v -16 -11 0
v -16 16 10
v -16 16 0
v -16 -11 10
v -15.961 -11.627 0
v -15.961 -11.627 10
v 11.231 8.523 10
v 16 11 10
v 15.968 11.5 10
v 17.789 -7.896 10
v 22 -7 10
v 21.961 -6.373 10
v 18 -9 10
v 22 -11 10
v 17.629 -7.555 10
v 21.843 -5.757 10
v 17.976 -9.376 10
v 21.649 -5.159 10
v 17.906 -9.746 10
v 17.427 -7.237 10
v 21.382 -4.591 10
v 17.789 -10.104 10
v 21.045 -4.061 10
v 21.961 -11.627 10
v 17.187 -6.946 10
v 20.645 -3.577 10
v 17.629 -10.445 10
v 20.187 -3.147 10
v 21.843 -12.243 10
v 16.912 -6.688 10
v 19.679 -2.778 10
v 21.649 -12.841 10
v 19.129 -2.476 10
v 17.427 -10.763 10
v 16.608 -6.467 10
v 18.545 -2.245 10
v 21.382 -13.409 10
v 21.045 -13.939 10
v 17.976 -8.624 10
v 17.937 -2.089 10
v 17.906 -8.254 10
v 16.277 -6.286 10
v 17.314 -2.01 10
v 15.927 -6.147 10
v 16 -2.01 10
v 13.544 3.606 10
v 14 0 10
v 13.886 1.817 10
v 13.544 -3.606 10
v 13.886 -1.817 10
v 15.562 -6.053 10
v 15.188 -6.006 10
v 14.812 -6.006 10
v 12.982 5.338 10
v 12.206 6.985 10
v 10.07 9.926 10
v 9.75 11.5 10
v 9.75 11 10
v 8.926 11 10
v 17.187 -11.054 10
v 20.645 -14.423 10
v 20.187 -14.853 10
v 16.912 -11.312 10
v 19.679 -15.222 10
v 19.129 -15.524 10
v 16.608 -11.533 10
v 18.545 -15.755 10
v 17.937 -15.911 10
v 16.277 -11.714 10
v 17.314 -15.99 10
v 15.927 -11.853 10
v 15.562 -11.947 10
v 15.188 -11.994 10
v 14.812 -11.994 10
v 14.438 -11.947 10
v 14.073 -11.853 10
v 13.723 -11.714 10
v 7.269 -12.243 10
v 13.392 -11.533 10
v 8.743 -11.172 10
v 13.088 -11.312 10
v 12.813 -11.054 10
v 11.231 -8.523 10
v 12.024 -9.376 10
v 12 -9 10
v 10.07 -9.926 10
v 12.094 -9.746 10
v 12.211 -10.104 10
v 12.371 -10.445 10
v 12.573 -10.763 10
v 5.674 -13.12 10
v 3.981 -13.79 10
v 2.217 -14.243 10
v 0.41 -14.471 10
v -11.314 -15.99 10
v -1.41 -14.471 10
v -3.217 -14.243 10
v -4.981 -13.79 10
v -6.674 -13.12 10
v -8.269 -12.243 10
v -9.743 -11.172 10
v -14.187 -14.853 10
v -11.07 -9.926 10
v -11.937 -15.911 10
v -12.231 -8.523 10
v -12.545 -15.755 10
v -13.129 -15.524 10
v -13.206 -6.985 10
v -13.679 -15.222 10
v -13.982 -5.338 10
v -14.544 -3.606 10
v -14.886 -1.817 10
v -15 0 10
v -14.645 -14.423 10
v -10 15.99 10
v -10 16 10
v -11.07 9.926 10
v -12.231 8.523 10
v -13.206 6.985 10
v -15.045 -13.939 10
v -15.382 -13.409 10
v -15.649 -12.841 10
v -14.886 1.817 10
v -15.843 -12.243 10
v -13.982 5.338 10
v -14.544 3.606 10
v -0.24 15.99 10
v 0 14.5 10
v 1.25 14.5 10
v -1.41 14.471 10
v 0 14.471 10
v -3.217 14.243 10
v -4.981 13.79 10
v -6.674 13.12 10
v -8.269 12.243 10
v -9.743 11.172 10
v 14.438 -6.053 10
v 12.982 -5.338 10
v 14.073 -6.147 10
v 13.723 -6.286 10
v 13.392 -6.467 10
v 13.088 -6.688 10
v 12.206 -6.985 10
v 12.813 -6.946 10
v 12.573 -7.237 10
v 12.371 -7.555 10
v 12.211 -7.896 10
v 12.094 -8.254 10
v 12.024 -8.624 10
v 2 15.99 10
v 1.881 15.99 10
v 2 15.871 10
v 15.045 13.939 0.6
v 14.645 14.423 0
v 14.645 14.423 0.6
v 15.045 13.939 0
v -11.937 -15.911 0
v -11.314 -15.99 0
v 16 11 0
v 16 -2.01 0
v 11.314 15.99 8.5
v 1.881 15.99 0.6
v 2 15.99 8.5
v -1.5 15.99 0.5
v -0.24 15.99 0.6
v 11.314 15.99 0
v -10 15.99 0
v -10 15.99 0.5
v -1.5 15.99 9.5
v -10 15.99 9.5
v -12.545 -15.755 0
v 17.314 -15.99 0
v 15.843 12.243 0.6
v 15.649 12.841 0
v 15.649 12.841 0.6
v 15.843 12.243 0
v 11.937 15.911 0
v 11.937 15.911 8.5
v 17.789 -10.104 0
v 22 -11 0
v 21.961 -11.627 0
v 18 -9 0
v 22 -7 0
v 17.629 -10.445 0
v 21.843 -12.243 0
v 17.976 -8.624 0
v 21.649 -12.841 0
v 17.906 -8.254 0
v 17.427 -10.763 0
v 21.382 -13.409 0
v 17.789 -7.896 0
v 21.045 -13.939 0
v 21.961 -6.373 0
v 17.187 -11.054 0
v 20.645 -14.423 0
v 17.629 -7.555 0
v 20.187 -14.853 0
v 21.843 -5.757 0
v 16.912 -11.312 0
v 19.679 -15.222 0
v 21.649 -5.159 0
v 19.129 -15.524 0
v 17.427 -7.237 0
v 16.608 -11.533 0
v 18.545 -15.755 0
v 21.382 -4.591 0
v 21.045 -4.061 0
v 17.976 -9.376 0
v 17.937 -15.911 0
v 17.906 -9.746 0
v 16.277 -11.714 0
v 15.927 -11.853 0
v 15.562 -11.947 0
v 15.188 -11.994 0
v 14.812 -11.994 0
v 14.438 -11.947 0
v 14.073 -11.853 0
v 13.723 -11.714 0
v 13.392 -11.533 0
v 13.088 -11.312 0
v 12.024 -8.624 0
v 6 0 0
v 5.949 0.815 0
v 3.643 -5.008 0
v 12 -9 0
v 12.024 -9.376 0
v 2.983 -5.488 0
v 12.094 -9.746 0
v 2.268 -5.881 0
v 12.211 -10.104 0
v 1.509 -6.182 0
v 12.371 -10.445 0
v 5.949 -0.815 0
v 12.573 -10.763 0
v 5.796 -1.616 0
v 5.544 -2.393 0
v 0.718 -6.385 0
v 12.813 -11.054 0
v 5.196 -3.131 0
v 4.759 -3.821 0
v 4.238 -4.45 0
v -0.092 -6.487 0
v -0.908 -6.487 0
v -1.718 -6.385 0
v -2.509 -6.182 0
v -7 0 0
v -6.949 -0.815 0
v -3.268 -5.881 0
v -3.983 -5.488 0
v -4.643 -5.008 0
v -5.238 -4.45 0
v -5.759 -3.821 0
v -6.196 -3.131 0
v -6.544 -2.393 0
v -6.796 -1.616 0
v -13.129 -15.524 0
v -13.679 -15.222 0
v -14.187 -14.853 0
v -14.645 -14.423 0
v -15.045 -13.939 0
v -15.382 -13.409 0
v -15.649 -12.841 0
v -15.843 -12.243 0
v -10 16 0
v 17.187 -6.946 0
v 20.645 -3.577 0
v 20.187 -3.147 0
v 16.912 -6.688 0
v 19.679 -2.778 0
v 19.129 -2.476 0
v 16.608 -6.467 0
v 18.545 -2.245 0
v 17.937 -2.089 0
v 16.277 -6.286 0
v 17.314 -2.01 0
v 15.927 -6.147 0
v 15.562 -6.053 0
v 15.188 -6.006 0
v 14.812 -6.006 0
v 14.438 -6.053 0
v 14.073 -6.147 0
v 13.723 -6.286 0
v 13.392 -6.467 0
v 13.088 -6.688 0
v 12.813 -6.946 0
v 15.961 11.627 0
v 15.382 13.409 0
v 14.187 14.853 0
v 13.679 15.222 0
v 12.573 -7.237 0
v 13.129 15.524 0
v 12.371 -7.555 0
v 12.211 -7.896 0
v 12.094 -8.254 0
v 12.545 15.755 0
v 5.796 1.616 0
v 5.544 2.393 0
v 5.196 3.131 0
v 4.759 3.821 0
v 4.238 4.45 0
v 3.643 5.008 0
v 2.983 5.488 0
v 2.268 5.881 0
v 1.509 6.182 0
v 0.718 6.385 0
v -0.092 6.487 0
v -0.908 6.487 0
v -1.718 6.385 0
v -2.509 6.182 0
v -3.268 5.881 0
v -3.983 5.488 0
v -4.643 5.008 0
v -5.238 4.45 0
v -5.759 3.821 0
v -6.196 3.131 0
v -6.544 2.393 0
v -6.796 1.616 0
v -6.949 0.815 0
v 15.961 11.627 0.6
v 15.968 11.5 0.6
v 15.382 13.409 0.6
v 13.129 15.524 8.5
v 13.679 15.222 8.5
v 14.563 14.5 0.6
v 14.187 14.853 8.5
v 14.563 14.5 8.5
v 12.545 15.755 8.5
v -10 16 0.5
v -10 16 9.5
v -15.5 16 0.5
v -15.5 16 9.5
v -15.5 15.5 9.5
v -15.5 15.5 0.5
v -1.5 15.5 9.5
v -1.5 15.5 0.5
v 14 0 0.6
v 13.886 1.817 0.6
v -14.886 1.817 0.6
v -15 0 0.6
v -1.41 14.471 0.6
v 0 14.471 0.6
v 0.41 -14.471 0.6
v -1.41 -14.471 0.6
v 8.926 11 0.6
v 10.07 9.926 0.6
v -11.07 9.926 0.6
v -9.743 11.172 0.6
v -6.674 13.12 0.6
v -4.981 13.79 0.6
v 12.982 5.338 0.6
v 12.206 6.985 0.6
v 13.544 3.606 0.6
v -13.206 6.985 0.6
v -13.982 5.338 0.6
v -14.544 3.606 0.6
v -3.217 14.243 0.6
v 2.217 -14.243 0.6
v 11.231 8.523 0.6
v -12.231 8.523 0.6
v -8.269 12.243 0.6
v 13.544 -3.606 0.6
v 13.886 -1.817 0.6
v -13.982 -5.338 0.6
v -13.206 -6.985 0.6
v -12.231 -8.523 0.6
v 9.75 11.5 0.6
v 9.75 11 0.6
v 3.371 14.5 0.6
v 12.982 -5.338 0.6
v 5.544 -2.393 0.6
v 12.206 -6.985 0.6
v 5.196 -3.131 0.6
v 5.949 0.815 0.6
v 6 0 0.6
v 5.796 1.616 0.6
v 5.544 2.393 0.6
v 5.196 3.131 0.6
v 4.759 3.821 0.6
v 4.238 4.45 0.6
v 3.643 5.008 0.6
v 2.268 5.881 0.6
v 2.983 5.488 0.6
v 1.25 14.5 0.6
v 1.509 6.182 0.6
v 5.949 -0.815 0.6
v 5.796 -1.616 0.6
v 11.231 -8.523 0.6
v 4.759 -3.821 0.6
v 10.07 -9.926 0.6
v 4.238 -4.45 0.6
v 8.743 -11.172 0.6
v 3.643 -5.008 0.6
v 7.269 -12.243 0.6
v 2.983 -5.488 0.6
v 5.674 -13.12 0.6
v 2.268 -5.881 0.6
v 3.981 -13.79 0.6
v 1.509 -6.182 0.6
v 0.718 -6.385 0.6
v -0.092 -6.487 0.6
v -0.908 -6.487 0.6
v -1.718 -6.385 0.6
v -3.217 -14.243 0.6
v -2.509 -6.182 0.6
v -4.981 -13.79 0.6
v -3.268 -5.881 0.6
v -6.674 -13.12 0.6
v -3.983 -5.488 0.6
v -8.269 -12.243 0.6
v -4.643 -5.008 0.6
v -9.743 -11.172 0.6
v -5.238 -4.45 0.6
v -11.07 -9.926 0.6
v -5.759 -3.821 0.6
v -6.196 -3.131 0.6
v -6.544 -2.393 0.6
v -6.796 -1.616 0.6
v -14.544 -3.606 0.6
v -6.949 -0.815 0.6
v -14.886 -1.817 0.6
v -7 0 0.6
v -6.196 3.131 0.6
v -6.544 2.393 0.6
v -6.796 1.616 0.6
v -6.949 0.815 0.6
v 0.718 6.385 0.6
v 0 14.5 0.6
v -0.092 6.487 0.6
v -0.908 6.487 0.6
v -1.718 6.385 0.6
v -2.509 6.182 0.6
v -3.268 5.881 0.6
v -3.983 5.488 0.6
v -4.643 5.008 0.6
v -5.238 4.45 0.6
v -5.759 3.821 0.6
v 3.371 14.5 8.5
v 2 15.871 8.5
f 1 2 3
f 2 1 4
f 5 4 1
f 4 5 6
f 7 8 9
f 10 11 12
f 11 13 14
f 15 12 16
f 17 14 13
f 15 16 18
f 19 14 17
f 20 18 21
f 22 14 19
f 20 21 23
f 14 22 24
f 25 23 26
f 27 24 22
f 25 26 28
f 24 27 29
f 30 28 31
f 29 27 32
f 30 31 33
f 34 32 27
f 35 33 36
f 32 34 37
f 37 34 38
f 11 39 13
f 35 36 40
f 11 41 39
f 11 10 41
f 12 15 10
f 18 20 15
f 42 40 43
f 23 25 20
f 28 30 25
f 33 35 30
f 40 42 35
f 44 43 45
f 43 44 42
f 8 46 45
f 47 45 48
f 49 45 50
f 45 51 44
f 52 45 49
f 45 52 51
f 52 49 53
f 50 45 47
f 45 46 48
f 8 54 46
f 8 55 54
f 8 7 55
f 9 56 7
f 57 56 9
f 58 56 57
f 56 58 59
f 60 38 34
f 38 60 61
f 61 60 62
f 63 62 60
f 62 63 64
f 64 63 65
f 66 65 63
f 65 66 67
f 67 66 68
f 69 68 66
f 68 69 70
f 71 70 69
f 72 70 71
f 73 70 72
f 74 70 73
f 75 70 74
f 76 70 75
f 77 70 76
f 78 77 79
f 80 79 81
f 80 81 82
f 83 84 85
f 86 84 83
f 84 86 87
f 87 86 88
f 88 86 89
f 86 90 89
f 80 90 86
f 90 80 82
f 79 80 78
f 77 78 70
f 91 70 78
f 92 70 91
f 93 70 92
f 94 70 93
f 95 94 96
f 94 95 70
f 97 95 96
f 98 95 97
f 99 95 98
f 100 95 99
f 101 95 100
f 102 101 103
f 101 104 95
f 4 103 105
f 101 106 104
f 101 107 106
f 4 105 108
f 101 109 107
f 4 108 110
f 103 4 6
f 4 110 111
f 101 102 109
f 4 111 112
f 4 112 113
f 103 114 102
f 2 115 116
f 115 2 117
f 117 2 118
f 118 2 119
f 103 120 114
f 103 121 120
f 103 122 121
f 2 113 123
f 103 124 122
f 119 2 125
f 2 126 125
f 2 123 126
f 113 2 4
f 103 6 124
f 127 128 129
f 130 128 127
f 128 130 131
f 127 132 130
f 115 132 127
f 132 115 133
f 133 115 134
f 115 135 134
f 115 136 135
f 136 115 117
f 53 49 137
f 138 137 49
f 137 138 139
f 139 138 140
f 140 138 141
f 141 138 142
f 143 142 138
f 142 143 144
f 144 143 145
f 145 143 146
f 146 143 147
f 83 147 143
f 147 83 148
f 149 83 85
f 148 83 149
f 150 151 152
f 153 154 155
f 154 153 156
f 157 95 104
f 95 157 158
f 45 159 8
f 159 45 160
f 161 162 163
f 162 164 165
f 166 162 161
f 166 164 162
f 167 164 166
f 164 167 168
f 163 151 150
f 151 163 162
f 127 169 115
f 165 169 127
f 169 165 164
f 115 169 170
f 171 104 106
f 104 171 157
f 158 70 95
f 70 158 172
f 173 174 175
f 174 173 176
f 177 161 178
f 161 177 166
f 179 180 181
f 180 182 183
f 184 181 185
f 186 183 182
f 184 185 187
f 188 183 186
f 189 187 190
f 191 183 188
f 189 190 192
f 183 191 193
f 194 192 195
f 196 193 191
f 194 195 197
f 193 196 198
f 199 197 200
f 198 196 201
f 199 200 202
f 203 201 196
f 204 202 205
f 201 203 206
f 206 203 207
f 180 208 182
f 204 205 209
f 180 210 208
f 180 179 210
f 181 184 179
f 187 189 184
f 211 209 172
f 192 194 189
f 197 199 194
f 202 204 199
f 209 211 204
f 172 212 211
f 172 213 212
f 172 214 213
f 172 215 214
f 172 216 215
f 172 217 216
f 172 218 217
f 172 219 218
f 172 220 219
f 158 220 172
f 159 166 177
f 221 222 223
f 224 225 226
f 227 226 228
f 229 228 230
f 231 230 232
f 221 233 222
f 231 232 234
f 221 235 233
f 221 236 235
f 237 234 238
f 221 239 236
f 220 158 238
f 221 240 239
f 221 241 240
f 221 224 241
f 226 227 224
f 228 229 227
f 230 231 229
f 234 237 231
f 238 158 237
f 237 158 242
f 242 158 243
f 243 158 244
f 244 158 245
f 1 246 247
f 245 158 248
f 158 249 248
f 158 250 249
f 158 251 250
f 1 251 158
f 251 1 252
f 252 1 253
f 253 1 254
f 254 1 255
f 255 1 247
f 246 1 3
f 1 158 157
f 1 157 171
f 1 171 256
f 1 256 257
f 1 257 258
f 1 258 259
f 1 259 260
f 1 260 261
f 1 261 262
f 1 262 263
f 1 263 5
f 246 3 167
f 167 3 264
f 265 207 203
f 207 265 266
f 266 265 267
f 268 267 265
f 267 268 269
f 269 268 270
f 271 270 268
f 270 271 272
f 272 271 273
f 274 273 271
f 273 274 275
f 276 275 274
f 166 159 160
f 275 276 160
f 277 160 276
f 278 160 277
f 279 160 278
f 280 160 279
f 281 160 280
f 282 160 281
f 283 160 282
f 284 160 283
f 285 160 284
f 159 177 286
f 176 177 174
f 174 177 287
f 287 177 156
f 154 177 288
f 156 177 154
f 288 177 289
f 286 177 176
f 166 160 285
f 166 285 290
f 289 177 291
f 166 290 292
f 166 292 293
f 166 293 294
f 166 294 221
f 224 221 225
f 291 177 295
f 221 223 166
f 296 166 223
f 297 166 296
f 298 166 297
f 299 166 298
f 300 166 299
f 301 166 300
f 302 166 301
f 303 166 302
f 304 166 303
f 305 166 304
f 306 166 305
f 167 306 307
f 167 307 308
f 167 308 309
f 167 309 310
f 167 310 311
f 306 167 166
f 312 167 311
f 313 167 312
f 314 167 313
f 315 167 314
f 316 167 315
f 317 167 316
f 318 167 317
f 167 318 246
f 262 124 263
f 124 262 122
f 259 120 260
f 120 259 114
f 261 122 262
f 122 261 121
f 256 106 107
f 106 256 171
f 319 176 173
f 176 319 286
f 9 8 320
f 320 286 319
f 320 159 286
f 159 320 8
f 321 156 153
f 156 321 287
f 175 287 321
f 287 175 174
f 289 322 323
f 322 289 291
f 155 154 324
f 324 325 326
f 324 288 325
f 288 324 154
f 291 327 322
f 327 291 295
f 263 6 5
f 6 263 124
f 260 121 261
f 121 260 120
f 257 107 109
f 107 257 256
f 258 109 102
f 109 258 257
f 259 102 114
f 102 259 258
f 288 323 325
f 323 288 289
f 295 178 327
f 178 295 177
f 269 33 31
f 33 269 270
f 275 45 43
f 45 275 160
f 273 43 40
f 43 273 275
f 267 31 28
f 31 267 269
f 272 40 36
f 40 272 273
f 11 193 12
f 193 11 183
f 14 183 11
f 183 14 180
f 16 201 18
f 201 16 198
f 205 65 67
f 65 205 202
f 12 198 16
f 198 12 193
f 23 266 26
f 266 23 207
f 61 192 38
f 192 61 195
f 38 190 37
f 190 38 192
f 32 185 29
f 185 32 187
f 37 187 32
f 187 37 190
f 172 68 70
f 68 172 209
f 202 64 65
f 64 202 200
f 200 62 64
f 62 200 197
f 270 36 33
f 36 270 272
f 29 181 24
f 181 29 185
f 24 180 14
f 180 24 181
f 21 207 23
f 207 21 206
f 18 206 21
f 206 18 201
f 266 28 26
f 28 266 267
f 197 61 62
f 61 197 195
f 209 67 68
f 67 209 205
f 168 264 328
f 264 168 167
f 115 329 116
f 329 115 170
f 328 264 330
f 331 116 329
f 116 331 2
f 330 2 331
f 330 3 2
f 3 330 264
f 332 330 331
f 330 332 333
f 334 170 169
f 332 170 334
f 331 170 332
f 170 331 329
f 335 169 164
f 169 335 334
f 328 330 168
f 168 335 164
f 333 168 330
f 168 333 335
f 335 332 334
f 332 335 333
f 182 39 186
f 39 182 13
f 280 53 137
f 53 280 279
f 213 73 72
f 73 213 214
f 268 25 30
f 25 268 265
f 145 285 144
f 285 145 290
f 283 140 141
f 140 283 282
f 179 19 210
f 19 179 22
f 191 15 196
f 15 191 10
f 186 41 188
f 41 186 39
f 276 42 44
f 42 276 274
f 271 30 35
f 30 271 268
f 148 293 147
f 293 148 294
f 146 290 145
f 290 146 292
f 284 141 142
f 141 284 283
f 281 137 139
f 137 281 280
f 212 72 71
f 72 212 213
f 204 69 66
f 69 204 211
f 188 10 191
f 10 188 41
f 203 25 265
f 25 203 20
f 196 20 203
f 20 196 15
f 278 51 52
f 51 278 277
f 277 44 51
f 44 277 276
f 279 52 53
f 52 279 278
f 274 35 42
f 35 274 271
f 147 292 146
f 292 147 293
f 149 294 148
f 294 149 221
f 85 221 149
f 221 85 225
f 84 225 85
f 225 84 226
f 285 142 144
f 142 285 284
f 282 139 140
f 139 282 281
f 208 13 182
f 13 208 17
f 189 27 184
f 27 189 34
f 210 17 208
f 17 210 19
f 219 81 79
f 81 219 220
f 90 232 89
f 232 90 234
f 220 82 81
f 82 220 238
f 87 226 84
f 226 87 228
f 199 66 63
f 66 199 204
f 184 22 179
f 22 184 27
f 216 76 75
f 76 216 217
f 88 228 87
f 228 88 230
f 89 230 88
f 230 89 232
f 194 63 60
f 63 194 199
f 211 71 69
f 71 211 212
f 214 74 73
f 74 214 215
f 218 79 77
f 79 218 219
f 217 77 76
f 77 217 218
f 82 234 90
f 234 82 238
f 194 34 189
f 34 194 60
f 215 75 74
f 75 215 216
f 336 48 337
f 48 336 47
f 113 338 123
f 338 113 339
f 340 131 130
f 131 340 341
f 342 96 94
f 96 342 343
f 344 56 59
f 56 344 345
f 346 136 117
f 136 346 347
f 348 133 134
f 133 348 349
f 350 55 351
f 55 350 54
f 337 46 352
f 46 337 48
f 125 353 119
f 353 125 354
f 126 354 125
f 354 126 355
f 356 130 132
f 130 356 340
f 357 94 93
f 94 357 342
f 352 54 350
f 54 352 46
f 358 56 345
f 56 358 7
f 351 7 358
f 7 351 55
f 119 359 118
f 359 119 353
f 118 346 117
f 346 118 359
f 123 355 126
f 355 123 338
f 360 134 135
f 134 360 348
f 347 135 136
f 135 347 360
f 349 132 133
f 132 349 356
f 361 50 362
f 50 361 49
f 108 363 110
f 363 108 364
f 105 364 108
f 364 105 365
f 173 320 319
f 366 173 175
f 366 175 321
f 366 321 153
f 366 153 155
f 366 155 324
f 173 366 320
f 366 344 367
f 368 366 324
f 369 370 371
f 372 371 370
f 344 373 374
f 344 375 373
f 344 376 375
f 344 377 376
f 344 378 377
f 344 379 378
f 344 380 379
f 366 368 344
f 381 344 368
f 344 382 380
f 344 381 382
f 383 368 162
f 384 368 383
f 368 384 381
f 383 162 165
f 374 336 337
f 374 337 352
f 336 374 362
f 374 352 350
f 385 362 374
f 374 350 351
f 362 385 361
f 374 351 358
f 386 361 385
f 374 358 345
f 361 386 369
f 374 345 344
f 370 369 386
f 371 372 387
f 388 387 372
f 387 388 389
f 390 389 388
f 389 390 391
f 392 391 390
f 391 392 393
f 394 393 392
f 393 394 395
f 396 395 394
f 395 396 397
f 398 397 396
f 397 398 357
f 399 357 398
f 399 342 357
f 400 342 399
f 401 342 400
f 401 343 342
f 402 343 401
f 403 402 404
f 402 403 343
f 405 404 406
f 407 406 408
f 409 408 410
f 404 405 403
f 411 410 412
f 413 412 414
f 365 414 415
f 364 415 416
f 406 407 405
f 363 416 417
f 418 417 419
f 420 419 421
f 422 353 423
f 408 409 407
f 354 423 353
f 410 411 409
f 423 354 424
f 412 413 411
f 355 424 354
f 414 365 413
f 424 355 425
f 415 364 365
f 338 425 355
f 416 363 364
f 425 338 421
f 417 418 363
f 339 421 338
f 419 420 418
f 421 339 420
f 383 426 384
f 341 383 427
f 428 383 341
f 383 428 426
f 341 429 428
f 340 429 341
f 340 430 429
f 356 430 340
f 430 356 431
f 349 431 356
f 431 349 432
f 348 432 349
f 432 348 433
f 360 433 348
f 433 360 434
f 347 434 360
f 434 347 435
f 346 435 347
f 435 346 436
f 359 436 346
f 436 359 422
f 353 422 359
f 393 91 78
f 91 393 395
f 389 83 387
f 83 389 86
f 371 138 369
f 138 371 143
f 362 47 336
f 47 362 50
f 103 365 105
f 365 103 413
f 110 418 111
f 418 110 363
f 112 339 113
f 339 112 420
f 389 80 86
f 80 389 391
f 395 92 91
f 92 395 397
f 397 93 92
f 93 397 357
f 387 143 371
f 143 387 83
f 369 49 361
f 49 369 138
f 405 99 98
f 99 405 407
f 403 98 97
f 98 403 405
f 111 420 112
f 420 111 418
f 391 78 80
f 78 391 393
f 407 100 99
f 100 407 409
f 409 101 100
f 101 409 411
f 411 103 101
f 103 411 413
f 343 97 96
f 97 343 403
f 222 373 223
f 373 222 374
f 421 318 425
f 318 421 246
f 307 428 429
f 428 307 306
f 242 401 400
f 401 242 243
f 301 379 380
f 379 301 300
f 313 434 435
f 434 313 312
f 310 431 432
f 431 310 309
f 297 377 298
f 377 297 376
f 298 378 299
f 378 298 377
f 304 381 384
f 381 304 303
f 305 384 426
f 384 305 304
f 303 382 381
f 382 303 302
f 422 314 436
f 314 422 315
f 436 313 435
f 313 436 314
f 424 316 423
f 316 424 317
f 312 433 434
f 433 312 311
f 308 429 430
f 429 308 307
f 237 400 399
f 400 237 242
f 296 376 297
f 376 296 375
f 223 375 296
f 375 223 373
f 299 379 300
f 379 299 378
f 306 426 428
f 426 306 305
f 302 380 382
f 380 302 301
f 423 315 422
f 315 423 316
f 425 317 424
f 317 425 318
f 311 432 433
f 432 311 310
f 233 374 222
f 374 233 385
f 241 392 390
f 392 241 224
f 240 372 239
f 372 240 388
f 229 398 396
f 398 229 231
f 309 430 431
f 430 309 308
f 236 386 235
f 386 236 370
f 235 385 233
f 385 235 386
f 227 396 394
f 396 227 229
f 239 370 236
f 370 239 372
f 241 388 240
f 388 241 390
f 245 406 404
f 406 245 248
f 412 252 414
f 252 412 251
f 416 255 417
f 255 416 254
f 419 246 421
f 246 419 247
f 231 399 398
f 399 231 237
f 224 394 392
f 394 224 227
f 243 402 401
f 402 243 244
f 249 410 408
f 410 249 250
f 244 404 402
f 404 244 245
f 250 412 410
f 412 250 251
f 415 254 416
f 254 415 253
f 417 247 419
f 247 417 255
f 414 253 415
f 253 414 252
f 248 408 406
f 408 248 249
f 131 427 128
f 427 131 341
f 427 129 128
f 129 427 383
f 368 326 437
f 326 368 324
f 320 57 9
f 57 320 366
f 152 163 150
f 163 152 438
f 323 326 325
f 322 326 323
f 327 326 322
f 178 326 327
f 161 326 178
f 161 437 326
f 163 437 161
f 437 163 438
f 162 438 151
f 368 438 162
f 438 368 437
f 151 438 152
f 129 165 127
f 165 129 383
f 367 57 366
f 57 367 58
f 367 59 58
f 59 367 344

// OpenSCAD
$fn = 50;


difference() {
	union() {
		hull() {
			translate(v = [-11.0000000000, 11.0000000000, 0]) {
				cylinder(h = 10, r = 5);
			}
			translate(v = [11.0000000000, 11.0000000000, 0]) {
				cylinder(h = 10, r = 5);
			}
			translate(v = [-11.0000000000, -11.0000000000, 0]) {
				cylinder(h = 10, r = 5);
			}
			translate(v = [11.0000000000, -11.0000000000, 0]) {
				cylinder(h = 10, r = 5);
			}
		}
		translate(v = [7.5000000000, -9.0000000000, 0]) {
			hull() {
				translate(v = [-9.5000000000, 2.0000000000, 0]) {
					cylinder(h = 10, r = 5);
				}
				translate(v = [9.5000000000, 2.0000000000, 0]) {
					cylinder(h = 10, r = 5);
				}
				translate(v = [-9.5000000000, -2.0000000000, 0]) {
					cylinder(h = 10, r = 5);
				}
				translate(v = [9.5000000000, -2.0000000000, 0]) {
					cylinder(h = 10, r = 5);
				}
			}
		}
		translate(v = [-16.0000000000, 10.0000000000, 0]) {
			cube(size = [6, 6, 10]);
		}
	}
	union() {
		translate(v = [-15.5000000000, 15.5000000000, 0.5000000000]) {
			cube(size = [14, 0.5000000000, 9.0000000000]);
		}
		translate(v = [15.0000000000, -9.0000000000, -50.0000000000]) {
			cylinder(h = 100, r = 3.0000000000);
		}
		translate(v = [-0.5000000000, 0.0000000000, 0.6000000000]) {
			cylinder(h = 12.4000000000, r = 14.5000000000);
		}
		translate(v = [-0.5000000000, 0.0000000000, -5.0000000000]) {
			cylinder(h = 10, r = 6.5000000000);
		}
		translate(v = [0.0000000000, 11.5000000000, 0.6000000000]) {
			cube(size = [16.0000000000, 3, 12.4000000000]);
		}
		translate(v = [2.0000000000, 11.5000000000, 8.5000000000]) {
			cube(size = [14.0000000000, 6, 1.5000000000]);
		}
		translate(v = [-3.0000000000, 18.7500000000, 0.6000000000]) {
			rotate(a = [0, 0, -45]) {
				cube(size = [10, 1.5000000000, 12.4000000000]);
			}
		}
		translate(v = [2.2500000000, 11.0000000000, 0.6000000000]) {
			cube(size = [7.5000000000, 2, 9.4000000000]);
		}
	}
}
